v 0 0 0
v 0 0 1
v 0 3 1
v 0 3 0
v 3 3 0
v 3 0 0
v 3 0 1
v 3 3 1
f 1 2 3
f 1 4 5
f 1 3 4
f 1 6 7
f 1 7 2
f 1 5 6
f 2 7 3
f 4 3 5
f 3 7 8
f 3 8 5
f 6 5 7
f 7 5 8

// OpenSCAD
/* Warning, this is a very basic generator with a lot of approximation 
input data : [MSOP, DMA, 3x3mm, 8, , A, C04-01082A]
generated by com.zoubworld.electronics.cad.model3d.Basic
Date : Sun Feb 15 10:50:49 CET 2026
*/

//body
color("black")
translate([0,0,0])
cube([3.0,3.0,1.0], center=false);
